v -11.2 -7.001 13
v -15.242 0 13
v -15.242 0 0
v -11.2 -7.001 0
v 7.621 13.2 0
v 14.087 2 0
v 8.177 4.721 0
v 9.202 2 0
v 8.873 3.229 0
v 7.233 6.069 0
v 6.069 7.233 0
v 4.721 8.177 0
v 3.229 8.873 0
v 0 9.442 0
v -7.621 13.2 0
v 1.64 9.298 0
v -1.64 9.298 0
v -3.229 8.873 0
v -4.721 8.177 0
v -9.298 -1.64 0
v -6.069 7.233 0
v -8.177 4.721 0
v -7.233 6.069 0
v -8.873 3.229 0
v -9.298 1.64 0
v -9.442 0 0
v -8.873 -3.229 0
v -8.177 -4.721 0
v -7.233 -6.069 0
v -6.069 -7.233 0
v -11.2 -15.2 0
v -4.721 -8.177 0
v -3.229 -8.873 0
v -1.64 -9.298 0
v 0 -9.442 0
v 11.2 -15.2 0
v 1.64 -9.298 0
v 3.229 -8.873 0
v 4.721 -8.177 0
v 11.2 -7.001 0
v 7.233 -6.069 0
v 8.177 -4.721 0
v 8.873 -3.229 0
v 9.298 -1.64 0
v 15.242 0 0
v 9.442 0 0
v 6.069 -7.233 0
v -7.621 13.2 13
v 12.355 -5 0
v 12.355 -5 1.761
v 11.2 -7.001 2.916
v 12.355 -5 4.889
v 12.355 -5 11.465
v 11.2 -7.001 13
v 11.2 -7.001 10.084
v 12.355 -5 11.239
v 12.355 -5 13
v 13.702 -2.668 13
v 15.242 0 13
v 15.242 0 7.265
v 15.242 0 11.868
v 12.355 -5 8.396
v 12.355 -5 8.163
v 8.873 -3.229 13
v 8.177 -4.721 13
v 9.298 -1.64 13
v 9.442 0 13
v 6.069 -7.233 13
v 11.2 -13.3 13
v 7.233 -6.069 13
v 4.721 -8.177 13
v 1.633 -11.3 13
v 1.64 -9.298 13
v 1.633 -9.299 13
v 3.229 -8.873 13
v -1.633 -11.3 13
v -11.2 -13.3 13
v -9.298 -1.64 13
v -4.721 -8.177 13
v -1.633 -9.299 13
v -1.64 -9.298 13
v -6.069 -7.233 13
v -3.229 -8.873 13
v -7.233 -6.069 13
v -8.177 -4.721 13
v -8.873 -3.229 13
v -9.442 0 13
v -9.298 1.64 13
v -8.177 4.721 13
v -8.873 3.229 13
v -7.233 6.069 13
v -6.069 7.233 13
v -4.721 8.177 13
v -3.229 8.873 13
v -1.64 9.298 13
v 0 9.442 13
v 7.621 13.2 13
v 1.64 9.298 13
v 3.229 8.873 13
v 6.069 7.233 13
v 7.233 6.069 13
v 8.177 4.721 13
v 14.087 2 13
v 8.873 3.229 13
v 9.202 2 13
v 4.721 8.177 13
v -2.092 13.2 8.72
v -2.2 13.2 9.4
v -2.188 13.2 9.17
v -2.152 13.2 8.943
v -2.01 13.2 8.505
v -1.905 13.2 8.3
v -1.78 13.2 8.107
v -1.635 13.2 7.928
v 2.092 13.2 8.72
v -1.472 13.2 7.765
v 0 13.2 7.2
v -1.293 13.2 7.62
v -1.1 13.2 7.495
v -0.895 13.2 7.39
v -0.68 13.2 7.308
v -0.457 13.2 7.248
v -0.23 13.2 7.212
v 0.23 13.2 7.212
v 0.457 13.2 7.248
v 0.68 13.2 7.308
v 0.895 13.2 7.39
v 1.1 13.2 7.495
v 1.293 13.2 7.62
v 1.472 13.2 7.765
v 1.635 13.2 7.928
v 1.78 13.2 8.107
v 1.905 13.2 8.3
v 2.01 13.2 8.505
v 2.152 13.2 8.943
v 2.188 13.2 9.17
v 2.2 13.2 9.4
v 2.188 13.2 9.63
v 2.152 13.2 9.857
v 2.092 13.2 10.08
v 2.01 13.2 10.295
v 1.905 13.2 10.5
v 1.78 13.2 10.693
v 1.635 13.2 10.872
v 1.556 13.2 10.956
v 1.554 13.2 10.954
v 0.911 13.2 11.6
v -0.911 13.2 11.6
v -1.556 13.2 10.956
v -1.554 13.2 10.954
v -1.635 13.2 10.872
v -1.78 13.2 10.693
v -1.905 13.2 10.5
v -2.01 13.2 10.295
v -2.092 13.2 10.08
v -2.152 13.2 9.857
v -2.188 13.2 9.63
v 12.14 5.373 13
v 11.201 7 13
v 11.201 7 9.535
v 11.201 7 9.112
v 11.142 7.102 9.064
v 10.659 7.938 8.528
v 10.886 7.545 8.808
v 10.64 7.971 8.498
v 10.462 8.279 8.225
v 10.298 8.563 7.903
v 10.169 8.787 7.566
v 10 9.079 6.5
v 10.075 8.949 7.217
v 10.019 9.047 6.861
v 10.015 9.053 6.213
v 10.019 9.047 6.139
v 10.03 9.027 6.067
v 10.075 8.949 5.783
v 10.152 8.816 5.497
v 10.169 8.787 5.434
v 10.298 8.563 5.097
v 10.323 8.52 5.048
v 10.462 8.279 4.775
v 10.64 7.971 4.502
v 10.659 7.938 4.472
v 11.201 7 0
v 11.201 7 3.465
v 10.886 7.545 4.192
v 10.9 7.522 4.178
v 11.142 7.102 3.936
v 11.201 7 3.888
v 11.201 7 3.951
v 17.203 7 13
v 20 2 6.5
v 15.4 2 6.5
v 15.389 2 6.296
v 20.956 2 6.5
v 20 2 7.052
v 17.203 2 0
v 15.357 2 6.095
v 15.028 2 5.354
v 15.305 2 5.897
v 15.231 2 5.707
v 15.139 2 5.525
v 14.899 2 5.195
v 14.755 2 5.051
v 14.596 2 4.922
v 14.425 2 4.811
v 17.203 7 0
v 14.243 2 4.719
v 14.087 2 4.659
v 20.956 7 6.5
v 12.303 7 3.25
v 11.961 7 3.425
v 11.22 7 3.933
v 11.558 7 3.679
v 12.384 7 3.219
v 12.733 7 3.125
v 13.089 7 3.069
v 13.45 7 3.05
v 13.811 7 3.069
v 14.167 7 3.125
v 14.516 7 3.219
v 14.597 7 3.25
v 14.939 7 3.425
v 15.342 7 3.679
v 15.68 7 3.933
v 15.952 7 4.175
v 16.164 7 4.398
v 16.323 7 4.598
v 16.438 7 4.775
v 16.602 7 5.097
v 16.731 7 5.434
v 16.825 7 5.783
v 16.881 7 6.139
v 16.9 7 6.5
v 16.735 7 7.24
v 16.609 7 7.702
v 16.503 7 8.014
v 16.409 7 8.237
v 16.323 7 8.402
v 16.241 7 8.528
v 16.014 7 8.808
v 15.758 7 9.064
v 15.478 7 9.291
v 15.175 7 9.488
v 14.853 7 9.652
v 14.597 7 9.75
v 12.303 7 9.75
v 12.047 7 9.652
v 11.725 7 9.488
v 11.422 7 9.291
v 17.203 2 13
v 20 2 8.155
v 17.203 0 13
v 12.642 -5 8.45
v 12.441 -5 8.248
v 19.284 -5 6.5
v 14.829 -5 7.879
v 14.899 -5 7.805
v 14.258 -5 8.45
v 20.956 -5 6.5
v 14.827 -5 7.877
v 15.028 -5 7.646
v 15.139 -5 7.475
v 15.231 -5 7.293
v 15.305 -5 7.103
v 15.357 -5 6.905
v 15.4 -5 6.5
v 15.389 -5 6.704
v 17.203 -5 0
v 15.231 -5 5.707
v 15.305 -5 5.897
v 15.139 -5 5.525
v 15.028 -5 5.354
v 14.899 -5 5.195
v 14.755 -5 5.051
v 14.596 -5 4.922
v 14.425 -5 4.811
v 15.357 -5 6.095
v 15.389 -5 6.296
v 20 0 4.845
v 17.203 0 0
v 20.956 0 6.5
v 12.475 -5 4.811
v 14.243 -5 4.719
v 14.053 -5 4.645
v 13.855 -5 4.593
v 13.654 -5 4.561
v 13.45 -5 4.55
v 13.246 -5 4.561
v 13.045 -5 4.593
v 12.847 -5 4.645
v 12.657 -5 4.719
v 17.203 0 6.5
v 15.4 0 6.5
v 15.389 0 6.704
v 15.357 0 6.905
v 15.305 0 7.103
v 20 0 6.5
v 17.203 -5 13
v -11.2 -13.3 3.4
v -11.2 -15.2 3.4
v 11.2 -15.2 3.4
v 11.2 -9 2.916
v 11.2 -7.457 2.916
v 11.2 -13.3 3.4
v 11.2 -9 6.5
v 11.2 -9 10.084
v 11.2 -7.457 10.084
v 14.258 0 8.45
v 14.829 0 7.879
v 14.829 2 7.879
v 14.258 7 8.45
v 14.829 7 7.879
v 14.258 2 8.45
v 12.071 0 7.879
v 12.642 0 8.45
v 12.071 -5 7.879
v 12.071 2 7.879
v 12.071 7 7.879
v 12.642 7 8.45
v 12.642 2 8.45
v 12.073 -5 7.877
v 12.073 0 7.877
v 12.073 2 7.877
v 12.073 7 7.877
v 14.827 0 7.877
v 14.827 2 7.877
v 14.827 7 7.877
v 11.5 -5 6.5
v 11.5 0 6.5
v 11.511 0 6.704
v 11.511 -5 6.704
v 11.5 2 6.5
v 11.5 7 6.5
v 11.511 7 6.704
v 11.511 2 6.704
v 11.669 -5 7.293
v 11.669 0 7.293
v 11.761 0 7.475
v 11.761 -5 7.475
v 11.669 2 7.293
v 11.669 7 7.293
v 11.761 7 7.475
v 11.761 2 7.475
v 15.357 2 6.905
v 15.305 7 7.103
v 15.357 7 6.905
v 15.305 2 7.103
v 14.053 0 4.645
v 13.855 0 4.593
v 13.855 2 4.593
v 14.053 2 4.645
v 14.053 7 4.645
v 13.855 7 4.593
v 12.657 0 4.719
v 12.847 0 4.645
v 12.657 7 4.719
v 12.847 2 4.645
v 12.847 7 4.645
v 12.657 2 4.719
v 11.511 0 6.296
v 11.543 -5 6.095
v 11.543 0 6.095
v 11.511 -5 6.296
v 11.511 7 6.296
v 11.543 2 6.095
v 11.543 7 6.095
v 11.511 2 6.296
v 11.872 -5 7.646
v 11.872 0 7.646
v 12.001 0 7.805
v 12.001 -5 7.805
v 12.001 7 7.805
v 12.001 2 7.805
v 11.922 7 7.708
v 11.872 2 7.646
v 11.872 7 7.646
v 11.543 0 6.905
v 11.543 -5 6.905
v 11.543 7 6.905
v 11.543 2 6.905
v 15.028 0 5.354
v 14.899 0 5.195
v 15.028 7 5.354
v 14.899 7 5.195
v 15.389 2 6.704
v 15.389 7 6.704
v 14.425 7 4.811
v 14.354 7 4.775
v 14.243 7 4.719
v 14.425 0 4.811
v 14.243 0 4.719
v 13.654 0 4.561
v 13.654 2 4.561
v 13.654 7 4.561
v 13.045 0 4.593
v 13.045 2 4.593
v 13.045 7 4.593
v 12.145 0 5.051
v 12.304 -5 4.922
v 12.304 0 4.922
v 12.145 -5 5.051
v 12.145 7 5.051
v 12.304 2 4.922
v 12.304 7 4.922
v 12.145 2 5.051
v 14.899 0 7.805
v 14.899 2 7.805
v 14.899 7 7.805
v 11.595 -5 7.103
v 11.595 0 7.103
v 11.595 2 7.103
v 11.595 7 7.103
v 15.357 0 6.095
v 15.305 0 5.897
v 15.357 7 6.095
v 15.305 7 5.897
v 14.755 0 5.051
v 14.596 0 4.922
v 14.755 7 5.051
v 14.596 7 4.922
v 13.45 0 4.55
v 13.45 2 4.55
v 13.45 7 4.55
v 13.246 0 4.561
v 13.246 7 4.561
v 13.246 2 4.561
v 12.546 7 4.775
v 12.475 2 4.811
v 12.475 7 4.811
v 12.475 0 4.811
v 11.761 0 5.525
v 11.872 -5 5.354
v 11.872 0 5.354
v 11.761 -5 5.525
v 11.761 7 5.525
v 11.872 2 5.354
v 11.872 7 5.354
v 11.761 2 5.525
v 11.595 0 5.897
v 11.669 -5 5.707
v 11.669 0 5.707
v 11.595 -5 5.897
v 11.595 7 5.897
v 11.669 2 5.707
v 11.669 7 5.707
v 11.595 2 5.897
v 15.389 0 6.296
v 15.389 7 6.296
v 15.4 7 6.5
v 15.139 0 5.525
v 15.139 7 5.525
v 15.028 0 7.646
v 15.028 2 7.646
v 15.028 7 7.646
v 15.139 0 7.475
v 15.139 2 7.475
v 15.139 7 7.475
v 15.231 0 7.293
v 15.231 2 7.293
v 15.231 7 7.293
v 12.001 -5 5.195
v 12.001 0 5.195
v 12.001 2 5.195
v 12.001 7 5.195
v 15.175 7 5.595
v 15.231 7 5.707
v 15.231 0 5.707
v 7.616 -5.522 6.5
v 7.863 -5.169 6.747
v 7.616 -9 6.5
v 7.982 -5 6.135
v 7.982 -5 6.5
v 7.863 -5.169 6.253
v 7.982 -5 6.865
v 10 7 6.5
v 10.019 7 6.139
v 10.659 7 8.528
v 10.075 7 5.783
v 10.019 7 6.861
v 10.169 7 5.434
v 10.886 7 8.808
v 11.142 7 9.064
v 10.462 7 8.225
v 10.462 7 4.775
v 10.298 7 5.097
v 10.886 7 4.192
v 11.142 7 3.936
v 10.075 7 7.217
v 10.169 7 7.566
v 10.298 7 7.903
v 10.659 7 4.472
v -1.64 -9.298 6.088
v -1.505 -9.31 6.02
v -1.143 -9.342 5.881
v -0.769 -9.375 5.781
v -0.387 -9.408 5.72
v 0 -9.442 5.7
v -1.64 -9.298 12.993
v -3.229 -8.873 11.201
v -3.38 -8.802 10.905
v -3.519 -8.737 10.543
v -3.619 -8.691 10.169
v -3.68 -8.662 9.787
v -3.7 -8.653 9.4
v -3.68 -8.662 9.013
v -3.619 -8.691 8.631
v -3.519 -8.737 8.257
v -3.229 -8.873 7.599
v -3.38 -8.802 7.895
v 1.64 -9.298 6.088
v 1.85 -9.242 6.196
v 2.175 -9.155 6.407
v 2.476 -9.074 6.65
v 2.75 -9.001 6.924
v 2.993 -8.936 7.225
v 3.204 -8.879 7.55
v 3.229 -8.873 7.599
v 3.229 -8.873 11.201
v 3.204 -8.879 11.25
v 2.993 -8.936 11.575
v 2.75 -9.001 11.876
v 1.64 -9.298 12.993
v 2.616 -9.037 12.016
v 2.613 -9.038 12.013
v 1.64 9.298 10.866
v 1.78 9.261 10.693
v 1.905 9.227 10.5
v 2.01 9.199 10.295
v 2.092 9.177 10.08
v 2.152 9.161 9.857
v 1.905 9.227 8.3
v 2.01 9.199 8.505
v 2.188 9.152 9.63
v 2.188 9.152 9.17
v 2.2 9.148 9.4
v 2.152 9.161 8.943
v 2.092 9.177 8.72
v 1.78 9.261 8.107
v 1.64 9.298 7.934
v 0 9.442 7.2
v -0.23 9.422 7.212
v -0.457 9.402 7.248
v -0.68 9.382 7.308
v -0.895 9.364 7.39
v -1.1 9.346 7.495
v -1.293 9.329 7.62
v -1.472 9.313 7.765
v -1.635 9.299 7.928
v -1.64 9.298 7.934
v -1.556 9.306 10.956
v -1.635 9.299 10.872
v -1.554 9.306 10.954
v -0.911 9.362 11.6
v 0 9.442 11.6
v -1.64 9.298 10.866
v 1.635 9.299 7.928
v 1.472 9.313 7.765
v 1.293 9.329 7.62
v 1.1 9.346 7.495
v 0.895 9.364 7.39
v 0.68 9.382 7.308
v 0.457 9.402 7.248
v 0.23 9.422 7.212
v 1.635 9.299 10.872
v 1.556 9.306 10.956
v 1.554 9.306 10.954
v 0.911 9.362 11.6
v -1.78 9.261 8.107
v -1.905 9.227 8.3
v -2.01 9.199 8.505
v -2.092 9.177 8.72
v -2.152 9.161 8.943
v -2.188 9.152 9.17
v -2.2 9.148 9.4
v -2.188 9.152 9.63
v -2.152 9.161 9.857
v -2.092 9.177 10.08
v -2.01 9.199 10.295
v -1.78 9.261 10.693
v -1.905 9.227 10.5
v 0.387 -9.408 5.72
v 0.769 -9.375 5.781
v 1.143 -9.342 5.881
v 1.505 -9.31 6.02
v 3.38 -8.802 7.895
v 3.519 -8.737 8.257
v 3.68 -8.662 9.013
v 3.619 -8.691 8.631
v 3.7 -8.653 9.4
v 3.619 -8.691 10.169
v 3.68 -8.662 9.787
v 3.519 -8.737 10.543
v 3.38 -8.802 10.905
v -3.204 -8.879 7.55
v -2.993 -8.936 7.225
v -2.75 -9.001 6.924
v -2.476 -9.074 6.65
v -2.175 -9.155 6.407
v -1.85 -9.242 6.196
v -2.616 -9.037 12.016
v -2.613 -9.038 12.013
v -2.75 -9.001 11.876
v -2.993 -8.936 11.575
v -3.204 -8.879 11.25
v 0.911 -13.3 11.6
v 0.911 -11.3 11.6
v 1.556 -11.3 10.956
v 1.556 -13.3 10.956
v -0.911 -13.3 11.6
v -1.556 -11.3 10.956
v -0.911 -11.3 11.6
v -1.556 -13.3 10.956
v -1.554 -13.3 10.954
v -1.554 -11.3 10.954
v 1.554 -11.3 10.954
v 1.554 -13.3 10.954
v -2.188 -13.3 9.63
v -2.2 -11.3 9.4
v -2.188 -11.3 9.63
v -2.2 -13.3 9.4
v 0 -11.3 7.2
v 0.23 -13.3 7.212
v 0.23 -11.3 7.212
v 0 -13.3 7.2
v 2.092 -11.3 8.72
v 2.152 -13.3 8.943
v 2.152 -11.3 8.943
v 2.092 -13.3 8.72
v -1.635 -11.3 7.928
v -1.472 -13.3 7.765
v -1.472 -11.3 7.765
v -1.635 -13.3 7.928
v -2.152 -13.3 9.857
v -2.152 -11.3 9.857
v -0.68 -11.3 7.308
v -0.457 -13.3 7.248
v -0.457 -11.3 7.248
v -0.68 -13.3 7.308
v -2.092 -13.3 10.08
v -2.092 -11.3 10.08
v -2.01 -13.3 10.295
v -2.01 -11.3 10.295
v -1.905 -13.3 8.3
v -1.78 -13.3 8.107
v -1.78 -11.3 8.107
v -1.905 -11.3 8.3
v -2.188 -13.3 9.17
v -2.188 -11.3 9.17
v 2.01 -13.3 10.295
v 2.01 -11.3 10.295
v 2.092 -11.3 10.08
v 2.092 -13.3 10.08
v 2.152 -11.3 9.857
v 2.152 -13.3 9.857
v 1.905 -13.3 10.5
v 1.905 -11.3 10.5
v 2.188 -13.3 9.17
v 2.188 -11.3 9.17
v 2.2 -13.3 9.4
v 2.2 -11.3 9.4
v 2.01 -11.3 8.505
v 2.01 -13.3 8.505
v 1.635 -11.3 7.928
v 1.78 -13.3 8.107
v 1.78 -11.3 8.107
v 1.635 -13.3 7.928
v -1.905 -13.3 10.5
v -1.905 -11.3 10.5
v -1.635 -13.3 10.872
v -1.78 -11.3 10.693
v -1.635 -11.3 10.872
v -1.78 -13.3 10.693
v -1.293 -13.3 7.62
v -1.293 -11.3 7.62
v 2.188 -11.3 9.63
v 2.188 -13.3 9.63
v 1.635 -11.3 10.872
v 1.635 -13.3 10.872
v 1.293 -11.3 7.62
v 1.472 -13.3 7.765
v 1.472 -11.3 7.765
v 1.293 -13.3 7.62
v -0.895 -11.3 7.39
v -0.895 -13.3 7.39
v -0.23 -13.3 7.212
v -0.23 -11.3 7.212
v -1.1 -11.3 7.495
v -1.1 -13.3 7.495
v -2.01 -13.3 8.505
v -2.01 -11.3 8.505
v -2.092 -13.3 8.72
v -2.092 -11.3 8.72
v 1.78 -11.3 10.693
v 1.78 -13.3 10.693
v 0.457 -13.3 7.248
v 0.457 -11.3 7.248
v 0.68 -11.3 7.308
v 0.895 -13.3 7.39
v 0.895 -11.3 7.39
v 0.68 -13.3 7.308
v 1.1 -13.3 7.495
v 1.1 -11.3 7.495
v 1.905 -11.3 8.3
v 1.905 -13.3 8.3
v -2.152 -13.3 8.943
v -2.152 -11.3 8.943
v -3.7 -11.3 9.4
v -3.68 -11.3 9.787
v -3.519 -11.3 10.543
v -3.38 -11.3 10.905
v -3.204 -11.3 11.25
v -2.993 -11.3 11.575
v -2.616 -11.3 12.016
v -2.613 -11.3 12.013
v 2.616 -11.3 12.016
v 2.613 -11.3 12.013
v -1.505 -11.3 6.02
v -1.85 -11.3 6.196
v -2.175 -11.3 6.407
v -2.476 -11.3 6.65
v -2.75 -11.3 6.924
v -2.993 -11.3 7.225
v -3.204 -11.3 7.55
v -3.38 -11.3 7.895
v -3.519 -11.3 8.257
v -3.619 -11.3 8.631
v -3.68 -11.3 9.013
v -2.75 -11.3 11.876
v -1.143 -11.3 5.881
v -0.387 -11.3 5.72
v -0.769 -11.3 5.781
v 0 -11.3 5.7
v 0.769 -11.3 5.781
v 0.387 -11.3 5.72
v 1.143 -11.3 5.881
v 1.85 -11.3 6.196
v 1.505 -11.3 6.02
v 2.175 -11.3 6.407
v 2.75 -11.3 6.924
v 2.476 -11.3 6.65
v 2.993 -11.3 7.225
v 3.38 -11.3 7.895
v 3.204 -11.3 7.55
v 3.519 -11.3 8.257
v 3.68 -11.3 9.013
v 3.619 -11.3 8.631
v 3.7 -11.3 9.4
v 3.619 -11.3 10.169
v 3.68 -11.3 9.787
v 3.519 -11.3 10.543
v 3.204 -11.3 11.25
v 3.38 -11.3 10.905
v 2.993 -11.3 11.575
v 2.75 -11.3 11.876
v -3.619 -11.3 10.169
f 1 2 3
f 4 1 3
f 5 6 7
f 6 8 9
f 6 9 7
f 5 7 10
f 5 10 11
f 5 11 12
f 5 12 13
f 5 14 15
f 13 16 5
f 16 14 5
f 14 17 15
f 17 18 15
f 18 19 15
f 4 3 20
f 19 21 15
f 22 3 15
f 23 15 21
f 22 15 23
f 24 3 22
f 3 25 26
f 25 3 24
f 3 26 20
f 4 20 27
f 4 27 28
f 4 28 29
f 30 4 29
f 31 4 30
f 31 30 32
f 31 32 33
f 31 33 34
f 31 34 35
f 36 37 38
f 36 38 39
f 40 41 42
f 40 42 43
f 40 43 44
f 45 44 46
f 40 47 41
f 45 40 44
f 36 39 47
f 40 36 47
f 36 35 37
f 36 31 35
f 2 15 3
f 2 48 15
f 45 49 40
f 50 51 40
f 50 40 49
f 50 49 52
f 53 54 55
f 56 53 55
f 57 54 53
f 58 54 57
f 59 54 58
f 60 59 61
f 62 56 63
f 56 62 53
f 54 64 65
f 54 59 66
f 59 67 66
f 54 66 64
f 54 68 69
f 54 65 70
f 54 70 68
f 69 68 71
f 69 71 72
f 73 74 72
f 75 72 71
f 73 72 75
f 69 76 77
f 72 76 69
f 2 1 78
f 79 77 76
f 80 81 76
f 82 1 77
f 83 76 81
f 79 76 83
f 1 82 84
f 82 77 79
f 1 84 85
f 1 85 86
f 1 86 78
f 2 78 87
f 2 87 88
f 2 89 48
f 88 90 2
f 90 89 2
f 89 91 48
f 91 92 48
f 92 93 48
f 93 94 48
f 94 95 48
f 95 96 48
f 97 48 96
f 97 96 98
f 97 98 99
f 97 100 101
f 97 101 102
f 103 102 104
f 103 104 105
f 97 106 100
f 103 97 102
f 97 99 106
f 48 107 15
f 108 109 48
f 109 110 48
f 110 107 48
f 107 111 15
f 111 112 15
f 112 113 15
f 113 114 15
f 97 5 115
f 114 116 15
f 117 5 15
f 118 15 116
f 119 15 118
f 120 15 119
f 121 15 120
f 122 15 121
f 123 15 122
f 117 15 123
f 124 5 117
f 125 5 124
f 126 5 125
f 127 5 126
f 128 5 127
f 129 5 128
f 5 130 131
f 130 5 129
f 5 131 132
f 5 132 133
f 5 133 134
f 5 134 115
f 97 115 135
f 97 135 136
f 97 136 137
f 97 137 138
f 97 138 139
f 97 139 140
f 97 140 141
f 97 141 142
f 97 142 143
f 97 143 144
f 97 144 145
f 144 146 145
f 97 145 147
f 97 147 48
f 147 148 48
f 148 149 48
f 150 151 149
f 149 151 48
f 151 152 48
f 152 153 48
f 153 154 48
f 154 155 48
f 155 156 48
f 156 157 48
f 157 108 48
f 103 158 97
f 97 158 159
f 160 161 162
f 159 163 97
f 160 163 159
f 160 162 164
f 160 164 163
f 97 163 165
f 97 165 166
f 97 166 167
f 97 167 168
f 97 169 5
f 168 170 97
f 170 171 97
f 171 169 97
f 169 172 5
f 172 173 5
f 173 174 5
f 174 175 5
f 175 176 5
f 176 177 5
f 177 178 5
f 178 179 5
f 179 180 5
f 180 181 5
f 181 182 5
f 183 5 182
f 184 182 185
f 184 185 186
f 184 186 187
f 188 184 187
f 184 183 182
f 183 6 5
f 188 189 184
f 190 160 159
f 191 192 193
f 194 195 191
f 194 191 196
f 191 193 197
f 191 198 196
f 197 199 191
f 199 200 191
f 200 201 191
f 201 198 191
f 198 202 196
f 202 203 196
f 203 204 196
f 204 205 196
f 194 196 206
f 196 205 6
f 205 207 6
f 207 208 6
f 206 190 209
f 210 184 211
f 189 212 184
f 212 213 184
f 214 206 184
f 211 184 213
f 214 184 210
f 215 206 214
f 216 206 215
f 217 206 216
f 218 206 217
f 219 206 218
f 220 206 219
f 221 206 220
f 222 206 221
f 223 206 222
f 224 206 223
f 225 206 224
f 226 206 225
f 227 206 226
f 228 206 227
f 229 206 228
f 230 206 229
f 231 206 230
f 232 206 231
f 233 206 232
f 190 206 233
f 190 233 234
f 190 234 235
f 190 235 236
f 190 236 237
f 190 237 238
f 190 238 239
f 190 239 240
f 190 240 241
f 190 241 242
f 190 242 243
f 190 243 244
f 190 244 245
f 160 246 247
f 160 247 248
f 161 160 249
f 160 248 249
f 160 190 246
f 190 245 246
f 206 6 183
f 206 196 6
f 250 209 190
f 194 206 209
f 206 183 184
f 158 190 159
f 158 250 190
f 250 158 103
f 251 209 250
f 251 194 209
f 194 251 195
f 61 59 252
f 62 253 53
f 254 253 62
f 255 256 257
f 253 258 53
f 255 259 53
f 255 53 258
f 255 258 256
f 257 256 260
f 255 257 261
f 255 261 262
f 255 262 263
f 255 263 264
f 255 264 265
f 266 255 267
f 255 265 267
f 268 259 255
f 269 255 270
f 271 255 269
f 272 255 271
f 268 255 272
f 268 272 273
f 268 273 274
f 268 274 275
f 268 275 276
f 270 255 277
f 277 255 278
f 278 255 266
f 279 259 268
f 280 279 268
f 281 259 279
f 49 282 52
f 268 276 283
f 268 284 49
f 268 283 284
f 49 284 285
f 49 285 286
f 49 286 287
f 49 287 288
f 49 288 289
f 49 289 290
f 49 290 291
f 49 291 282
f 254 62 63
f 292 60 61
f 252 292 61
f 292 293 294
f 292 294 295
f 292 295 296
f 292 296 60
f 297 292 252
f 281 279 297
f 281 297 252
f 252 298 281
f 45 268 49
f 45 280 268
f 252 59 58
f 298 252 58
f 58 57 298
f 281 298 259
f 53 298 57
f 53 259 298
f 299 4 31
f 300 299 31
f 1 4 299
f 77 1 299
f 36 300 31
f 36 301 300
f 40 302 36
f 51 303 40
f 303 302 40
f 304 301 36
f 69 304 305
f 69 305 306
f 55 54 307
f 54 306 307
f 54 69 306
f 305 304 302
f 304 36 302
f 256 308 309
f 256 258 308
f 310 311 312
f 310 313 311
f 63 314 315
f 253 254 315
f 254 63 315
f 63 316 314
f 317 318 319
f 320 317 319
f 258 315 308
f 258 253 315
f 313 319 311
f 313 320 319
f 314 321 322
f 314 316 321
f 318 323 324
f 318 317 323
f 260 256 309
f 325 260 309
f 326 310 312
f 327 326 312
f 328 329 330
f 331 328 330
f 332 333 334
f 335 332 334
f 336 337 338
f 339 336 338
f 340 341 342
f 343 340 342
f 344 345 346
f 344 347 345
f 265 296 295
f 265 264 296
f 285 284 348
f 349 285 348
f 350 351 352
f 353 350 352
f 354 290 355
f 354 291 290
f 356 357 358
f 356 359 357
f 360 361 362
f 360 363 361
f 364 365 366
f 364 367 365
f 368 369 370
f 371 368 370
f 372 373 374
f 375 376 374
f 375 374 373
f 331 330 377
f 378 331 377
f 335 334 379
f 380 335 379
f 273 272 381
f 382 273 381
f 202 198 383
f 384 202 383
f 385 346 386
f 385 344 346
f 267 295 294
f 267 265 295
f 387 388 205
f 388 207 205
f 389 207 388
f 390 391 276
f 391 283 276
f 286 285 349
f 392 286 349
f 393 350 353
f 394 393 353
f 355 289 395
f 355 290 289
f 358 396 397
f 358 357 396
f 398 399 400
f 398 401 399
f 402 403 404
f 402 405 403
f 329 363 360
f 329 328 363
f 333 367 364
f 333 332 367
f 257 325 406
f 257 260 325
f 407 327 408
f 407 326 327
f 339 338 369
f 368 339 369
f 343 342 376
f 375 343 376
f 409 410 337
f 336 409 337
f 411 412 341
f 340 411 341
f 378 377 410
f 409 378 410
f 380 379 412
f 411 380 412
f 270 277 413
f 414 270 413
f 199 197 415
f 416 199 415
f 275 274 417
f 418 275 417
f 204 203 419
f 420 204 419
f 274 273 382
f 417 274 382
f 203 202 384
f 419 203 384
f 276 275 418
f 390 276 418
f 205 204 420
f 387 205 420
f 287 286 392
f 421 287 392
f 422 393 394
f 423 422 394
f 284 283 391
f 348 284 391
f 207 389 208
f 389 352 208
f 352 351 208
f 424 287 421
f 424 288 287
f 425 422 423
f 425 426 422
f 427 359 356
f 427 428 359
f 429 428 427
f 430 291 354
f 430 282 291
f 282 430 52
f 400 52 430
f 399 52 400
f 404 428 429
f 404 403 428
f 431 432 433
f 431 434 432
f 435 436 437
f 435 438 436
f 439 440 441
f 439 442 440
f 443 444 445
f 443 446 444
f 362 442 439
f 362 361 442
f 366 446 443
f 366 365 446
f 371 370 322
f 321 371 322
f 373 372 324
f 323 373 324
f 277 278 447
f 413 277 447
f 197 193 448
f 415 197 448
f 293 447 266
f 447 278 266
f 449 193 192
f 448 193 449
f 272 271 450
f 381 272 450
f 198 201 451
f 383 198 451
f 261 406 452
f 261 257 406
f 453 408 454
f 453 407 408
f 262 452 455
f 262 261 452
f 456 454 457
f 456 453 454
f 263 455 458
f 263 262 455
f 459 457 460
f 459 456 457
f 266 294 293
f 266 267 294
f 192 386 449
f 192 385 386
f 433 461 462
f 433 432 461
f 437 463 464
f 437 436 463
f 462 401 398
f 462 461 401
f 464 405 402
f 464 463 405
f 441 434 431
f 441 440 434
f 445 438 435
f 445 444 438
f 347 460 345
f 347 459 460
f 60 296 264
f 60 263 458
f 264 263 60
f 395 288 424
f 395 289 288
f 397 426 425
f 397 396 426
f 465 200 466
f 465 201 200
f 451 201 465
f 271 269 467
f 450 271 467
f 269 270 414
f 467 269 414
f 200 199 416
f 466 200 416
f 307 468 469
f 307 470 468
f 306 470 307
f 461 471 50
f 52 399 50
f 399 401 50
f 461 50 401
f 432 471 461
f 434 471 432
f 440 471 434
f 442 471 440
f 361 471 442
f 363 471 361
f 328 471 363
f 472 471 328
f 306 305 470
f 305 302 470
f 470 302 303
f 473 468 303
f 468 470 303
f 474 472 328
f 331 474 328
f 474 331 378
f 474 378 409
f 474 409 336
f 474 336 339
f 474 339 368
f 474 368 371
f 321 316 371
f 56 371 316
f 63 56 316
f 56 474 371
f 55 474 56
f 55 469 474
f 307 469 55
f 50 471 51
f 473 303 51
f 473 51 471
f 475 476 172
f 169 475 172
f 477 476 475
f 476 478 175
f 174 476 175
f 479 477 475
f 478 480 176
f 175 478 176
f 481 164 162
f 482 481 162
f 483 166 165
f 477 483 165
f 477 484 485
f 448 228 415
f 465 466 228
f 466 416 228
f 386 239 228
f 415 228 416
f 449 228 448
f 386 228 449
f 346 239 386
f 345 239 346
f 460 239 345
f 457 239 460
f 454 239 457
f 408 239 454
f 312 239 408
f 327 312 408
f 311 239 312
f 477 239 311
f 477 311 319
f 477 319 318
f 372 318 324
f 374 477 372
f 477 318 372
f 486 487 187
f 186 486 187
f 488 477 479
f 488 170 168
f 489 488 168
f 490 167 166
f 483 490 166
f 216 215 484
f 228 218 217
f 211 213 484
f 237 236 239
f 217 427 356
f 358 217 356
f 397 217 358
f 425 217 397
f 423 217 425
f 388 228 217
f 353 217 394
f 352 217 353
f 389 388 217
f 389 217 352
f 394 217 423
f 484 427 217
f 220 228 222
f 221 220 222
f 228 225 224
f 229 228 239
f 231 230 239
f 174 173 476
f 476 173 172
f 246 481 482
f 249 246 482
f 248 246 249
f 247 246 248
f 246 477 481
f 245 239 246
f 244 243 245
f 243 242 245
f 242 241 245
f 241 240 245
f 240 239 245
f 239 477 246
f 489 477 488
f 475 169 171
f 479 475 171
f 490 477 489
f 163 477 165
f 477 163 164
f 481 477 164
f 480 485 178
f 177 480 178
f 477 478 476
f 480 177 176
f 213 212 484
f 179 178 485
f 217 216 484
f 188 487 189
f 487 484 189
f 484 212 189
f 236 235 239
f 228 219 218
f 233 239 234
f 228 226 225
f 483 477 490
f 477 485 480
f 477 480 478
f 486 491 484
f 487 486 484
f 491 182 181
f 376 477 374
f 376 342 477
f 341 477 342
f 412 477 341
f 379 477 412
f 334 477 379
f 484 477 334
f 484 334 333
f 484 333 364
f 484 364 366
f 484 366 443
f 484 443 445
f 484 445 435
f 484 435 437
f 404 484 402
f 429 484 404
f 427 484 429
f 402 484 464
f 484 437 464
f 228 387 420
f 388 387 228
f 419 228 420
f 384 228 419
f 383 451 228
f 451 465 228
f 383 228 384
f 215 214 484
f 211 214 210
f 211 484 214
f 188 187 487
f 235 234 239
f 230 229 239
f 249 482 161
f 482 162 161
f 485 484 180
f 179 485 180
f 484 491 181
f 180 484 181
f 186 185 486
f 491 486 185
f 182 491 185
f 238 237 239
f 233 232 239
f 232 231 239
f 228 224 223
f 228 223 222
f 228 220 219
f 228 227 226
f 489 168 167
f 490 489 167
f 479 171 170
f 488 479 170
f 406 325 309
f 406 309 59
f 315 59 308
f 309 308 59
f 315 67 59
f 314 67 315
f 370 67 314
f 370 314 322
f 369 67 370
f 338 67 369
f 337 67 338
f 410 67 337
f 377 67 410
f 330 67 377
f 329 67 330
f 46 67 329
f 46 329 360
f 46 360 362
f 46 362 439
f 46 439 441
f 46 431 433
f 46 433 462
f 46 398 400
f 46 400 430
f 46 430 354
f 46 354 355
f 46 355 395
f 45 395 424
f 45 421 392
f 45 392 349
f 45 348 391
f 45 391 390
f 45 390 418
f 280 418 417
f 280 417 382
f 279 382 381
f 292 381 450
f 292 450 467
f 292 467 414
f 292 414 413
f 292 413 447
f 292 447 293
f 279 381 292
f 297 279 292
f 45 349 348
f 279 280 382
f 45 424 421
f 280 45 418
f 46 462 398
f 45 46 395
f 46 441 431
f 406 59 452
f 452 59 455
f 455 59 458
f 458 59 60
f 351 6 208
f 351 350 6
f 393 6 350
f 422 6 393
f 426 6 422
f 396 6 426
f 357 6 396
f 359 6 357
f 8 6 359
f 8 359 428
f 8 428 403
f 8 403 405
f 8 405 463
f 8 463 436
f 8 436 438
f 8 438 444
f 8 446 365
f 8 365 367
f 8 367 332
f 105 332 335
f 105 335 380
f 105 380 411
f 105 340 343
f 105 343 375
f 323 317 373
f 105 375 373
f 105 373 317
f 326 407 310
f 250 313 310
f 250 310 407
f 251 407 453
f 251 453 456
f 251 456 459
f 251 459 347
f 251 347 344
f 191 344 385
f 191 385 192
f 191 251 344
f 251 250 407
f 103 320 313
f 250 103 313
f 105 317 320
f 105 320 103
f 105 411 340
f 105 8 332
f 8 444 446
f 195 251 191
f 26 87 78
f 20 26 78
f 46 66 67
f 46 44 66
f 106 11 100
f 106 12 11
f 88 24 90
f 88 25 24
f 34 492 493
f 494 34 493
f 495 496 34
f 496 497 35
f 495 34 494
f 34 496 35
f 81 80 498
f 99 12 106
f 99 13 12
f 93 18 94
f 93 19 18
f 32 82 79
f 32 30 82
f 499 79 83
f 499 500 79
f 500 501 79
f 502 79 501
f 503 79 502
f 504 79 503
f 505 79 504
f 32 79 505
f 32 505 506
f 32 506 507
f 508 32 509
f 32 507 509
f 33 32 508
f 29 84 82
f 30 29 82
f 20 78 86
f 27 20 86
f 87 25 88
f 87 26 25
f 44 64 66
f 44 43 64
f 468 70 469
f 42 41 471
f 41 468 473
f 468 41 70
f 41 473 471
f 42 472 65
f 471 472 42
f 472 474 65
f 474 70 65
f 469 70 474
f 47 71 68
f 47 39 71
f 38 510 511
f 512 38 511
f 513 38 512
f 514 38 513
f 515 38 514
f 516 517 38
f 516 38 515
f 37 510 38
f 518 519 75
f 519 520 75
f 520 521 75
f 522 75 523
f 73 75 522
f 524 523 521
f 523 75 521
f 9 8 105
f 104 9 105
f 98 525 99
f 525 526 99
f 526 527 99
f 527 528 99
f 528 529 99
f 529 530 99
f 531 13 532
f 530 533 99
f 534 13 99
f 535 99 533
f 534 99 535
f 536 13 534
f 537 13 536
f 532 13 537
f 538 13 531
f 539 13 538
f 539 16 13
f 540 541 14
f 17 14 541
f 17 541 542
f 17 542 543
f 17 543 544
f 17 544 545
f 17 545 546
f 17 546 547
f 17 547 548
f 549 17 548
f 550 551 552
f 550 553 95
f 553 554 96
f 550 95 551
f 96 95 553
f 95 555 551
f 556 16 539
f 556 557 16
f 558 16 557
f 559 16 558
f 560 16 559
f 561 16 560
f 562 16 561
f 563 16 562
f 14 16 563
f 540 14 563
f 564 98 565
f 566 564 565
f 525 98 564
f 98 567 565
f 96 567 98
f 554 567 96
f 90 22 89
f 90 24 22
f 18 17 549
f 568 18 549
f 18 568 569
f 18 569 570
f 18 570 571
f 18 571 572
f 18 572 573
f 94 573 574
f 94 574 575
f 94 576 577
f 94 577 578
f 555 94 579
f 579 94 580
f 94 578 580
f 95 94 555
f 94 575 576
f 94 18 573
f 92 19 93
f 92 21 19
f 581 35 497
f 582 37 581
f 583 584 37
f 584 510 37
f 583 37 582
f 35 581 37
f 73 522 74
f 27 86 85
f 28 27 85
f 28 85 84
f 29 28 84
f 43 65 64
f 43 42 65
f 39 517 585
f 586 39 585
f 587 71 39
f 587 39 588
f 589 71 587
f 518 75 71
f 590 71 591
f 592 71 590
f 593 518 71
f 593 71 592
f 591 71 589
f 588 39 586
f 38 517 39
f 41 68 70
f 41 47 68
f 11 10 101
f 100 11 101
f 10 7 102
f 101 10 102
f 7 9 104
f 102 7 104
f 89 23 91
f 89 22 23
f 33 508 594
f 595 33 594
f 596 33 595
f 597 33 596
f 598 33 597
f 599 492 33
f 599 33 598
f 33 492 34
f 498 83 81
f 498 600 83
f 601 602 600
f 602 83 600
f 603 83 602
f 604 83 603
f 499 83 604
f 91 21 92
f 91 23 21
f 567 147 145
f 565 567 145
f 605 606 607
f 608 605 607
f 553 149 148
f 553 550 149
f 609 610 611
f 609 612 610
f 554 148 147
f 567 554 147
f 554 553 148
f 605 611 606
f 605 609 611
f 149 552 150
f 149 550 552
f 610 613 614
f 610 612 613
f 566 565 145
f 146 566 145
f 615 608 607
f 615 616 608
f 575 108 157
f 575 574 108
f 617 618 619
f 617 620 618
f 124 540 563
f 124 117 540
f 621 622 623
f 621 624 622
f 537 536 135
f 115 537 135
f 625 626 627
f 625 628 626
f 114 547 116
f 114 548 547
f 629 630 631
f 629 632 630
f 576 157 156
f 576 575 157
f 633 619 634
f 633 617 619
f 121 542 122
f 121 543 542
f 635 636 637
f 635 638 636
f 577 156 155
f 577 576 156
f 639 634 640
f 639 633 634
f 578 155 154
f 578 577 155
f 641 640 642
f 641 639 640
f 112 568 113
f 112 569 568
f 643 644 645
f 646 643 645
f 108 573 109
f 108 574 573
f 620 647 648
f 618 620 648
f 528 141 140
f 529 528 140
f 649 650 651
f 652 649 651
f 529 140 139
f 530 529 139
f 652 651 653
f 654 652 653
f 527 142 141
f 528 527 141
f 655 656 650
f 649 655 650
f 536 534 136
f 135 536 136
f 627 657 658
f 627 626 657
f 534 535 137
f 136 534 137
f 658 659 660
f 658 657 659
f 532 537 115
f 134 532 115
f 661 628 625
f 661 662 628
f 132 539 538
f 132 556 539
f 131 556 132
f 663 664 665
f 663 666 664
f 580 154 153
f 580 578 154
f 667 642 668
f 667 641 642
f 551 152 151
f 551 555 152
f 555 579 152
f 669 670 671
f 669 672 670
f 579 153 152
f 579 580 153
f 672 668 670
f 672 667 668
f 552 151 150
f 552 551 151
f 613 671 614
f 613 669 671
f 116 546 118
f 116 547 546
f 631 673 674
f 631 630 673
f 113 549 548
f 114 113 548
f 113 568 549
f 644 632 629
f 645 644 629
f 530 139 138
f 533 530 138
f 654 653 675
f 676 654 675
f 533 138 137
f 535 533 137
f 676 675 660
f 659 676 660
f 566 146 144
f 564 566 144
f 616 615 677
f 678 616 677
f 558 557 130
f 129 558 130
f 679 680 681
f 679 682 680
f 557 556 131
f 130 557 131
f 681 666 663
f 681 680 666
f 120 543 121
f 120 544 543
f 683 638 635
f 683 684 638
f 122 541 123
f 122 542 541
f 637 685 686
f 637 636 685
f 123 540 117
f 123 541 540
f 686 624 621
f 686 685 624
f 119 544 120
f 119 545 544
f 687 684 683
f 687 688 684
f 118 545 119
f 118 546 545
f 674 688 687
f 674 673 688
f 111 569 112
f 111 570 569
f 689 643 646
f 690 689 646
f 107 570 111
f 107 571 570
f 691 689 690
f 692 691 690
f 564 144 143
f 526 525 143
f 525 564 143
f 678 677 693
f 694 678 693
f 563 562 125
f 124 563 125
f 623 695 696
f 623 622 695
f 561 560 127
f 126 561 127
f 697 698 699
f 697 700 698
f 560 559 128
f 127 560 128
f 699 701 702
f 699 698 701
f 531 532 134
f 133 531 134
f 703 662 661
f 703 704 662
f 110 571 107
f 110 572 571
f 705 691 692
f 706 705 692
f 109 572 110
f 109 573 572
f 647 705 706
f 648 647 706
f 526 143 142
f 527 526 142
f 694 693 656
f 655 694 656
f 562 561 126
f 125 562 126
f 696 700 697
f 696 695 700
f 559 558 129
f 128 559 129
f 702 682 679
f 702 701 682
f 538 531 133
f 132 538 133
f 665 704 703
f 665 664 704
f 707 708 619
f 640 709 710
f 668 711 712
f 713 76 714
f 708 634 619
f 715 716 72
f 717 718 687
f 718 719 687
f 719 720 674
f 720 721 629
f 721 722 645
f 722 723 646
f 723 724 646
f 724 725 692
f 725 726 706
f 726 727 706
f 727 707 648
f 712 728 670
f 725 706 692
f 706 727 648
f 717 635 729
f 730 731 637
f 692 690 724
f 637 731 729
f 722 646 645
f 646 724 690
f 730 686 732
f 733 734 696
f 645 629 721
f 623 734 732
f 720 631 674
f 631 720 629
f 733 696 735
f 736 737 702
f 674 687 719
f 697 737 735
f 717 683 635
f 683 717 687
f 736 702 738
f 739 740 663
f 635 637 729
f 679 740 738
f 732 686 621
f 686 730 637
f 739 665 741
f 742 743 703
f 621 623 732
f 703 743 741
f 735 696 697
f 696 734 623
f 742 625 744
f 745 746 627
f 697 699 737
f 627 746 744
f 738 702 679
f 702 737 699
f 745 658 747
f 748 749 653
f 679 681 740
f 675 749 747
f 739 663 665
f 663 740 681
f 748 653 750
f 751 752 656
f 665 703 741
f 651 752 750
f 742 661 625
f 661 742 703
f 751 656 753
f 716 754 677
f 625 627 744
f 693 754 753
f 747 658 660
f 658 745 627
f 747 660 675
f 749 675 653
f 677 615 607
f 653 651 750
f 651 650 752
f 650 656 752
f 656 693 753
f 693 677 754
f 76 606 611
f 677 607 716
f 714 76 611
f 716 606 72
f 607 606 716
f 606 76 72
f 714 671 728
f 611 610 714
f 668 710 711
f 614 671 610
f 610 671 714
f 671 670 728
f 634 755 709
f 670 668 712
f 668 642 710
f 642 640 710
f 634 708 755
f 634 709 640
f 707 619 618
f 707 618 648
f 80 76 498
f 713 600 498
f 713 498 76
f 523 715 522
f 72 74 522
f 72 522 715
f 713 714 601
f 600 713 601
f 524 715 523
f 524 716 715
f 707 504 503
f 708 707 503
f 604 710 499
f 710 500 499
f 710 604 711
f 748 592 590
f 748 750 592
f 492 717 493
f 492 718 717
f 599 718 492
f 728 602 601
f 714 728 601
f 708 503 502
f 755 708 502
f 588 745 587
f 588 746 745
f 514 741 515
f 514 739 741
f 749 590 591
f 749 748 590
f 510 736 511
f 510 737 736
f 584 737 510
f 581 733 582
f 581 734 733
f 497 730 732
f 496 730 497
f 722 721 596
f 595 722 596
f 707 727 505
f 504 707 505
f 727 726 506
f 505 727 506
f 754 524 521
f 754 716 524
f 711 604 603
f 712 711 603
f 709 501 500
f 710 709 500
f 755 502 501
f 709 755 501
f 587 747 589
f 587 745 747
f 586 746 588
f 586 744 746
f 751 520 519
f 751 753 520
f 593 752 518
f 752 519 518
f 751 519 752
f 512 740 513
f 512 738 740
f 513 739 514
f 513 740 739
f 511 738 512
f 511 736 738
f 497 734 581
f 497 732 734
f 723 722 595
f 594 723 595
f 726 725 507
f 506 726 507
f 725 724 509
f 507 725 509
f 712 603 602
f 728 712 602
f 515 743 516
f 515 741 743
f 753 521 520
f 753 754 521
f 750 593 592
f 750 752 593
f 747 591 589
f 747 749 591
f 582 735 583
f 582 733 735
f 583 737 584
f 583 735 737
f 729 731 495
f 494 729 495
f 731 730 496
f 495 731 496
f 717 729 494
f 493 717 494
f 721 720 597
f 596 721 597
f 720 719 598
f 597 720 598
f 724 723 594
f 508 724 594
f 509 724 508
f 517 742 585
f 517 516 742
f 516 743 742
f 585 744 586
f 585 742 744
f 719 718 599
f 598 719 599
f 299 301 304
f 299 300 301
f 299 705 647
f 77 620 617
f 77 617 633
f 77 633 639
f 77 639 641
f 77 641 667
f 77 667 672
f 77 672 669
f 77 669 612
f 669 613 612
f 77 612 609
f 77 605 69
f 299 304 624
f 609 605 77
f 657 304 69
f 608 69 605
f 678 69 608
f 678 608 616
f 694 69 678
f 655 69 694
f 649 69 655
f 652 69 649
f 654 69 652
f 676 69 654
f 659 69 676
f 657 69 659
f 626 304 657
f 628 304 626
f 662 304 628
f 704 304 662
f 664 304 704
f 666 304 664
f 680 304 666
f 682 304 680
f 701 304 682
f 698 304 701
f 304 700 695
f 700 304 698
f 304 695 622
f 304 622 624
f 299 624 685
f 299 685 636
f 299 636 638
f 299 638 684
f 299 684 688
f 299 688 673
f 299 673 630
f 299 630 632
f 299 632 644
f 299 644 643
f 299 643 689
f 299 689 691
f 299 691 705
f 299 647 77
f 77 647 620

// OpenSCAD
slop = .2;
$fn=60;

//hotend stuff
hotend_rad = 18/2+slop;

//standard stuff
bolt_slop = .5;
nut_slop = .85;
bolt_dia = 5+bolt_slop;
bolt_rad = bolt_dia/2;
bolt_cap_dia = 10+bolt_slop;
bolt_cap_rad = bolt_cap_dia/2;
nut_dia = 9+nut_slop;
nut_rad = nut_dia/2;
nut_height = 3.25;
lock_nut_height = 5.25;

m3_nut_rad = 6/cos(30)/2;
m3_nut_height = 3;
m3_rad = 1.8;
m3_cap_rad = 3.25;

632_dia = 3.5;
632_rad = 632_dia/2+slop;
632_nut_rad = 8.25/cos(45)/2;
632_cap_dia = 6.5;
632_cap_rad = 632_cap_dia/2+slop;
632_cap_height = 2+slop;
632_nut_height = 5;

ind_r = 18/2+slop;
ind_washer_r = 30/2+slop;
ind_y_offset = 10;
ind_x_offset = 5;


screw_y_sep = 66;
screw_rad = 4/2+slop;
screw_cap_rad = 7/2+slop;
nut_rad = 8.9/2+slop;

wall = 4;
//rotate([0,-90,0]) 
induction_mount2();






module induction_mount2(){
	height = 13;
	notch_h = 6;
	notch = 2;
	offset = 6;
	difference(){
		union(){
			translate([0,-hotend_rad-offset/2,height/2]) hull(){
				cube([hotend_rad*2+wall,offset,height], center=true);
				translate([0,hotend_rad+offset/2,0]) cube([hotend_rad*2+wall,offset,height], center=true);
			}
			extruder_mount(1, m_height=height);
		}
		extruder_mount(0, m_height=height);

		//screw holes
		translate([0,-hotend_rad-offset-.1,height-screw_cap_rad+.1]){
			rotate([-90,0,0]) cap_cylinder(r=screw_rad, h=30);
			rotate([-90,0,0]) translate([0,0,notch+2]) cap_cylinder(r=screw_cap_rad, h=wall*2);
			
			//this makes the protrusion into the bearing slot
			#translate([0,0,height/2-notch_h]) cube([hotend_rad*2+wall*2,notch*2,height], center=true);
		}		
	}
}

module induction_mount(){
	difference(){
		union(){
			//Mount to extruder
			hull(){
				for(i=[0,screw_y_sep])
					translate([0,0,i]) rotate([0,90,0]) cylinder(r=screw_cap_rad+wall, h=wall);

				//sensor mount
				translate([ind_washer_r+wall,0,ind_y_offset]) cylinder(r=ind_r+wall, h=wall*2);

				//beef up around the mount
				translate([ind_r+wall,0,ind_y_offset+wall]) cube([(ind_r+wall)*2,(ind_r+wall)*2, wall*2],center=true);
			}
		}
	
		//screwholes
		for(i=[0,screw_y_sep]){
			translate([-.1,0,i]) rotate([0,90,0]) cylinder(r=screw_rad, h=wall*2);
			translate([wall/2,0,i]) rotate([0,90,0]) cylinder(r=nut_rad, h=wall*2, $fn=6);
		}

		//sensor cutout
		translate([ind_washer_r+wall,0,0]) cylinder(r=ind_r, h=200,center=true);
		
		//washer cutouts
		translate([ind_washer_r+wall,0,ind_y_offset+wall])
		for(i=[0,1]) mirror([0,0,i])
			translate([0,0,wall]) cylinder(r=ind_washer_r, h=100);

	
	}
}

module extruder_mount(solid = 1, m_height = 10, m_thickness=50, fillet = 8, tap_height=0, width=20){
	gap = 2;
	tap_dia = 9.1;
	tap_rad = tap_dia/2;
	
	clamp_offset = 1.5;

	if(solid){		
		//clamp material
		if(m_height > nut_rad*2){
			cylinder(r=(hotend_rad+wall)/cos(30), h=m_height, $fn=6);
			translate([hotend_rad+bolt_rad+clamp_offset,gap,m_height/2]) rotate([-90,0,0]) cylinder(r=m_height/2/cos(30), h=wall+1, $fn=6);
			translate([hotend_rad+bolt_rad+clamp_offset,-wall-1,m_height/2]) rotate([-90,0,0]) cylinder(r=m_height/2/cos(30), h=wall+1, $fn=6);
		}
	}else{
		union(){
			//hotend hole
			translate([0,0,-.05]) cylinder(r=hotend_rad/cos(180/18)+.1, h=m_height+20, $fn=36);

			//bolt slots
			if(m_height > nut_rad*2){
				render() translate([hotend_rad+bolt_rad+clamp_offset,-m_thickness-.05,m_height/2]) rotate([-90,0,0]) cap_cylinder(r=632_rad, h=m_thickness+10);
				translate([hotend_rad+bolt_rad+clamp_offset,-wall*2-1,m_height/2]) rotate([-90,0,0]) cylinder(r=632_nut_rad, h=wall, $fn=4);

				//mount tightener
				translate([hotend_rad+bolt_rad+clamp_offset,wall+gap+1,m_height/2]) rotate([-90,0,0]) cylinder(r=632_cap_rad, h=10);
				translate([0,0,-.05]) cube([wall*5, gap, m_height+.1]);
			}
		}
	}
}

module cap_cylinder(r=1, h=1, center=false){
	render() union(){
		cylinder(r=r, h=h, center=center);
		intersection(){
			rotate([0,0,22.5]) cylinder(r=r/cos(180/8), h=h, $fn=8, center=center);
			translate([0,-r/cos(180/4),0]) rotate([0,0,0]) cylinder(r=r/cos(180/4), h=h, $fn=4, center=center);
		}
	}
}
